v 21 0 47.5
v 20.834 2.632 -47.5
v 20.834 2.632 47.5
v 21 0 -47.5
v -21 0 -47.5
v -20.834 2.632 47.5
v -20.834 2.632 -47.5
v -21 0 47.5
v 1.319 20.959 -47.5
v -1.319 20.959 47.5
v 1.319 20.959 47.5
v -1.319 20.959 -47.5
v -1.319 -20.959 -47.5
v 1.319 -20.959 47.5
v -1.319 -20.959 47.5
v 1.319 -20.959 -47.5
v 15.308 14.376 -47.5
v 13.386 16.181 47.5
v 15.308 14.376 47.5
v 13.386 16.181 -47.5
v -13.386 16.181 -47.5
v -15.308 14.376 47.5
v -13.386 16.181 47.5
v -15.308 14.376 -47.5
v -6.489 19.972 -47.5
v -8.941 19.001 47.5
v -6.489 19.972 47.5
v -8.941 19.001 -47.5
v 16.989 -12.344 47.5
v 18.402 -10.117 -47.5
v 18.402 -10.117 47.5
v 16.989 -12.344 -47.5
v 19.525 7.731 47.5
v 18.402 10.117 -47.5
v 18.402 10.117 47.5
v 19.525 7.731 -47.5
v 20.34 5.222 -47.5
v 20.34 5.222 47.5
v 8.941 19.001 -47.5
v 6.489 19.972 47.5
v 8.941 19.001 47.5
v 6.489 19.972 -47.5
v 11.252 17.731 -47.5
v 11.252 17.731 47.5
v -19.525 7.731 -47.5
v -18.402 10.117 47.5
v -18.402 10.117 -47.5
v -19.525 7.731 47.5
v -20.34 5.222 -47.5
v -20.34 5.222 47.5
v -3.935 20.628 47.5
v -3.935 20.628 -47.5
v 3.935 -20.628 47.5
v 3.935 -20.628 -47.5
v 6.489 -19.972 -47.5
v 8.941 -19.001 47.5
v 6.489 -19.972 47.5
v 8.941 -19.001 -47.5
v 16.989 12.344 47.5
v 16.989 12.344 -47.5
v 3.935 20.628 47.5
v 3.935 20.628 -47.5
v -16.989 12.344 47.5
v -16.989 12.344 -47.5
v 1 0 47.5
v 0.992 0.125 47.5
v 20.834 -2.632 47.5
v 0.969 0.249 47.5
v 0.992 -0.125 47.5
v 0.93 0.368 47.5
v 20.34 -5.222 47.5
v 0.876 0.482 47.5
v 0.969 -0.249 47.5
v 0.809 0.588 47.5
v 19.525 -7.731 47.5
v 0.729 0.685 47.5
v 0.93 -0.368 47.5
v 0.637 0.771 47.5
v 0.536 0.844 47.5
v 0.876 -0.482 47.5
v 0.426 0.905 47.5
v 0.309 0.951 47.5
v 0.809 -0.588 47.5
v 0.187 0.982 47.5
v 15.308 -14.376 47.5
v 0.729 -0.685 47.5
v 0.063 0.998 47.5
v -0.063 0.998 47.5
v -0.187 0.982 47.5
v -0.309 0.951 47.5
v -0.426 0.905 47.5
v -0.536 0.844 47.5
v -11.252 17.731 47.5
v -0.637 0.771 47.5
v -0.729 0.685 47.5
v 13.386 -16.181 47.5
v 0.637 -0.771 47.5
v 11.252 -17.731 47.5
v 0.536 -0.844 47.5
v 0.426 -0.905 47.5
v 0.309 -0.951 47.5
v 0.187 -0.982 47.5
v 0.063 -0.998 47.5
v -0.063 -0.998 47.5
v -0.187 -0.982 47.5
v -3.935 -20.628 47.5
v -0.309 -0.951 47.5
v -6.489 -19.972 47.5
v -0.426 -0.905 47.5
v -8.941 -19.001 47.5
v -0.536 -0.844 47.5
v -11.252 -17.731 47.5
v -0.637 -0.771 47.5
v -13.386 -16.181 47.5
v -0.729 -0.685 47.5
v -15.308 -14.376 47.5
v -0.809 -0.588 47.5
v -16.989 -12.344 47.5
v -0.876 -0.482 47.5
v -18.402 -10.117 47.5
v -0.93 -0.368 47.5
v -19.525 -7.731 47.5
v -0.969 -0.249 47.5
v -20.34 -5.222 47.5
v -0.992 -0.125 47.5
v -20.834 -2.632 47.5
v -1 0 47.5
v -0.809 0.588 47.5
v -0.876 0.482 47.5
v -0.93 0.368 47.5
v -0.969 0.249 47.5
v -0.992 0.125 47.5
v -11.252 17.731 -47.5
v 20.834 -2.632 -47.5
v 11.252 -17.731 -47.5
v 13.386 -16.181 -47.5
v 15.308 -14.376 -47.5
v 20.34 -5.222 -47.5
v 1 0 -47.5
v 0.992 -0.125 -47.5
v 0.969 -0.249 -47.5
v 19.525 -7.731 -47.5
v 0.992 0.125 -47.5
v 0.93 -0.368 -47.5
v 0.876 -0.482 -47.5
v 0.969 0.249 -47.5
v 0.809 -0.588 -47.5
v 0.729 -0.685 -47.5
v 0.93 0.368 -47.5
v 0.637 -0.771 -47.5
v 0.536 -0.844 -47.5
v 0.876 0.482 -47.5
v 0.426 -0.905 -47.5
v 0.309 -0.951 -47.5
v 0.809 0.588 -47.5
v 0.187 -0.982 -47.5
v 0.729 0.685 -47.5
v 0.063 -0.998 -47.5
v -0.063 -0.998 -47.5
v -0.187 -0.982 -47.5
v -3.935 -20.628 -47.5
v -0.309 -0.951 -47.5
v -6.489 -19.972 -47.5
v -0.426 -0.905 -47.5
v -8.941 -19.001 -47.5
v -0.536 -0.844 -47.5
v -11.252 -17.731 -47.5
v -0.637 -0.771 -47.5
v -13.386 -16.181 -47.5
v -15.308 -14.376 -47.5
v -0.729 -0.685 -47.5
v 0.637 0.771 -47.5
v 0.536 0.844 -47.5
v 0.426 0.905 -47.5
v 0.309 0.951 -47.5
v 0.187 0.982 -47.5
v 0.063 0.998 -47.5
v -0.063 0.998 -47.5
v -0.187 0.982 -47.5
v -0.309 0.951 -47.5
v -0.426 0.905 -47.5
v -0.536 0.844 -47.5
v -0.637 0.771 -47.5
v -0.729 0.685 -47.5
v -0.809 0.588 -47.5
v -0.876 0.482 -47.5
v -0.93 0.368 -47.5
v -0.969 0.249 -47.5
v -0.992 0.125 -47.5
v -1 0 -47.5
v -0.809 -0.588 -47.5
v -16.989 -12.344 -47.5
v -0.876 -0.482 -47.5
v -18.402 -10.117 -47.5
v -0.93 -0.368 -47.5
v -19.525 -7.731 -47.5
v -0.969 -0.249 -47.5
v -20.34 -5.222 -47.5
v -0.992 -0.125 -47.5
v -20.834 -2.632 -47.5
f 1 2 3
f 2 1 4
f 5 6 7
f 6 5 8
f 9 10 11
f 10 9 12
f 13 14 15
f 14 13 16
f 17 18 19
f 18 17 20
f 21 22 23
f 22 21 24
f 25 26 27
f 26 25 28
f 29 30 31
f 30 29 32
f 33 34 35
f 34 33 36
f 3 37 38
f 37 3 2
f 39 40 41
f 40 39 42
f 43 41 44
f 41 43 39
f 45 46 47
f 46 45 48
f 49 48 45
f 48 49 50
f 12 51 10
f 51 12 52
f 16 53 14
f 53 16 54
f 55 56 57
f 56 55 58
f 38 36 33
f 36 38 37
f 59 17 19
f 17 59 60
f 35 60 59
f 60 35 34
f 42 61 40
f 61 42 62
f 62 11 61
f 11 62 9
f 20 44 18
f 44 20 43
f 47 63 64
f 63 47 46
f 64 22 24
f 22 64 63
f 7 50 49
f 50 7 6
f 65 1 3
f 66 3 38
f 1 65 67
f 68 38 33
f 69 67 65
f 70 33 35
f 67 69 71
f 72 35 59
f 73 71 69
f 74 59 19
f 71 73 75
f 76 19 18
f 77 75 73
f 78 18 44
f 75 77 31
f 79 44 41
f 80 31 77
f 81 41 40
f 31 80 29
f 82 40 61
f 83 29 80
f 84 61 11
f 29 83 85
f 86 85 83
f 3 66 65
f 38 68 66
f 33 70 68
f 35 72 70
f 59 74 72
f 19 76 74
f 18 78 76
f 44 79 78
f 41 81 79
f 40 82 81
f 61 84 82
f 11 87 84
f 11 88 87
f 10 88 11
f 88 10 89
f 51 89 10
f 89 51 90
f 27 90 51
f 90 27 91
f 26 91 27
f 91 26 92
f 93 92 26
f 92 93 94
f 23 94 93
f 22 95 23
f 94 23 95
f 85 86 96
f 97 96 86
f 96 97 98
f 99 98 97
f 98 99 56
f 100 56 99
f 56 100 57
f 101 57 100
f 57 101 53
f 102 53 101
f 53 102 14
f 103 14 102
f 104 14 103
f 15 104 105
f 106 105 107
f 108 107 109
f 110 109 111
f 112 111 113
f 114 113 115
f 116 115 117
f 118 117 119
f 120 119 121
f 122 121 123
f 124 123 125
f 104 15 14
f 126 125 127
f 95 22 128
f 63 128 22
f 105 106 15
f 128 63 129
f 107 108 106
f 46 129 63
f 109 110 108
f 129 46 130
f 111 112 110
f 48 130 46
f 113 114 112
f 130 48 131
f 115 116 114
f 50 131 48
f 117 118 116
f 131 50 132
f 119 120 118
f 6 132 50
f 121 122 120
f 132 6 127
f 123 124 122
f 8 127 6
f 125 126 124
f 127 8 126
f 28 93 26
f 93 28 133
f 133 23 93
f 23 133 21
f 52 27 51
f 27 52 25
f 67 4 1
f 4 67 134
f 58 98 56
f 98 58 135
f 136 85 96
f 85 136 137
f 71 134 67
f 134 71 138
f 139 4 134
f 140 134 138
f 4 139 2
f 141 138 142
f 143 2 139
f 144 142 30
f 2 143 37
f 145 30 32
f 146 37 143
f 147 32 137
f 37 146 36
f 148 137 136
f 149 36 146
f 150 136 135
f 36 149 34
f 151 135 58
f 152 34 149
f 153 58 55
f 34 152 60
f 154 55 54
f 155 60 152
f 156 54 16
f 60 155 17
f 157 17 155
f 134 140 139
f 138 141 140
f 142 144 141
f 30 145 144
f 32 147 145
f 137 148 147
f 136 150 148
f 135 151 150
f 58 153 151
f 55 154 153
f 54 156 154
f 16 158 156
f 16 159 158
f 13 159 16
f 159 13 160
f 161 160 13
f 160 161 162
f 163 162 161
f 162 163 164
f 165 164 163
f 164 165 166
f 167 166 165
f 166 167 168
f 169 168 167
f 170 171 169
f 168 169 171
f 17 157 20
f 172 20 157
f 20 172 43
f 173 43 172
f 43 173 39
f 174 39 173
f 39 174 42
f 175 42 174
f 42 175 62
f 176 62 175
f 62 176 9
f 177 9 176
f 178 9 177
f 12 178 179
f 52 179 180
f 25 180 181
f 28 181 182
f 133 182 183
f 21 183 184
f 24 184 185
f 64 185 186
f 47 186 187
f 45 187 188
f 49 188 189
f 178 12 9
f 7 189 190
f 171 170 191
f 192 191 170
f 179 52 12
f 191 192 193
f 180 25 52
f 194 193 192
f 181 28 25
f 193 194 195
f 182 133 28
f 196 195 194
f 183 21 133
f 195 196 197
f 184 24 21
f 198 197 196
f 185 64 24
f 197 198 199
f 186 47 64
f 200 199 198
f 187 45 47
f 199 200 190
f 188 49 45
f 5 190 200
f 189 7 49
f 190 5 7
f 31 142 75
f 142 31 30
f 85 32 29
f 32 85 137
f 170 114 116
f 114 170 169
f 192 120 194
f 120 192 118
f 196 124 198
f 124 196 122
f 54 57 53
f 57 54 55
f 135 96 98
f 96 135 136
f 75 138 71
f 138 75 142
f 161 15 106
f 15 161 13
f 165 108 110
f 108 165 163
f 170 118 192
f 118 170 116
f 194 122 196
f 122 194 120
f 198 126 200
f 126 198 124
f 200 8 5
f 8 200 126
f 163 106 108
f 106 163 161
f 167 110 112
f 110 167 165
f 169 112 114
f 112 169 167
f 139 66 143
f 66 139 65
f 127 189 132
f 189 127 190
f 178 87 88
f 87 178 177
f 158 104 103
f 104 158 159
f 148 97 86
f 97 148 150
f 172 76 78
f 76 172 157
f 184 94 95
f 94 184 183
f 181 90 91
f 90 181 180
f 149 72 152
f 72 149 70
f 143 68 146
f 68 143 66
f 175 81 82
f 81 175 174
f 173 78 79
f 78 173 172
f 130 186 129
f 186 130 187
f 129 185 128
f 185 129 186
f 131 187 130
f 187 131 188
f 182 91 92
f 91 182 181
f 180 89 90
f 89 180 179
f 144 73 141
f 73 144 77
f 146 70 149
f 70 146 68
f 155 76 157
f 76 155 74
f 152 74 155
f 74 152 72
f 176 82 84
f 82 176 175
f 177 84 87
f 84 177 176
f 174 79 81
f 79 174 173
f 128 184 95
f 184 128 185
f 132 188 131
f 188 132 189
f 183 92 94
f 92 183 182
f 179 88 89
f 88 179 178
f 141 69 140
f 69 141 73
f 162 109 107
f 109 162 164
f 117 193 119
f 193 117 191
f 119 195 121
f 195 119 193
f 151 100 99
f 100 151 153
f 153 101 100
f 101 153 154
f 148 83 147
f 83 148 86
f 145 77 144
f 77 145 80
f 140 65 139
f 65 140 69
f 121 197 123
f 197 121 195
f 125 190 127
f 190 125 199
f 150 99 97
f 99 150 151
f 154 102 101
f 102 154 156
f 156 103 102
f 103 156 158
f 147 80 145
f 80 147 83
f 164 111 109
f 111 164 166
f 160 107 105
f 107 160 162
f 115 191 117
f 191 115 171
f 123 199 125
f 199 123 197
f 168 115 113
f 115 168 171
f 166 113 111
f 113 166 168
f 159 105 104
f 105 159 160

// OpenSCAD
$fn = 50;


difference() {
	union() {
		translate(v = [0, 0, -47.5000000000]) {
			cylinder(h = 95, r = 21.0000000000);
		}
	}
	union() {
		translate(v = [0, 0, -100.0000000000]) {
			cylinder(h = 200, r = 1.0000000000);
		}
	}
}
